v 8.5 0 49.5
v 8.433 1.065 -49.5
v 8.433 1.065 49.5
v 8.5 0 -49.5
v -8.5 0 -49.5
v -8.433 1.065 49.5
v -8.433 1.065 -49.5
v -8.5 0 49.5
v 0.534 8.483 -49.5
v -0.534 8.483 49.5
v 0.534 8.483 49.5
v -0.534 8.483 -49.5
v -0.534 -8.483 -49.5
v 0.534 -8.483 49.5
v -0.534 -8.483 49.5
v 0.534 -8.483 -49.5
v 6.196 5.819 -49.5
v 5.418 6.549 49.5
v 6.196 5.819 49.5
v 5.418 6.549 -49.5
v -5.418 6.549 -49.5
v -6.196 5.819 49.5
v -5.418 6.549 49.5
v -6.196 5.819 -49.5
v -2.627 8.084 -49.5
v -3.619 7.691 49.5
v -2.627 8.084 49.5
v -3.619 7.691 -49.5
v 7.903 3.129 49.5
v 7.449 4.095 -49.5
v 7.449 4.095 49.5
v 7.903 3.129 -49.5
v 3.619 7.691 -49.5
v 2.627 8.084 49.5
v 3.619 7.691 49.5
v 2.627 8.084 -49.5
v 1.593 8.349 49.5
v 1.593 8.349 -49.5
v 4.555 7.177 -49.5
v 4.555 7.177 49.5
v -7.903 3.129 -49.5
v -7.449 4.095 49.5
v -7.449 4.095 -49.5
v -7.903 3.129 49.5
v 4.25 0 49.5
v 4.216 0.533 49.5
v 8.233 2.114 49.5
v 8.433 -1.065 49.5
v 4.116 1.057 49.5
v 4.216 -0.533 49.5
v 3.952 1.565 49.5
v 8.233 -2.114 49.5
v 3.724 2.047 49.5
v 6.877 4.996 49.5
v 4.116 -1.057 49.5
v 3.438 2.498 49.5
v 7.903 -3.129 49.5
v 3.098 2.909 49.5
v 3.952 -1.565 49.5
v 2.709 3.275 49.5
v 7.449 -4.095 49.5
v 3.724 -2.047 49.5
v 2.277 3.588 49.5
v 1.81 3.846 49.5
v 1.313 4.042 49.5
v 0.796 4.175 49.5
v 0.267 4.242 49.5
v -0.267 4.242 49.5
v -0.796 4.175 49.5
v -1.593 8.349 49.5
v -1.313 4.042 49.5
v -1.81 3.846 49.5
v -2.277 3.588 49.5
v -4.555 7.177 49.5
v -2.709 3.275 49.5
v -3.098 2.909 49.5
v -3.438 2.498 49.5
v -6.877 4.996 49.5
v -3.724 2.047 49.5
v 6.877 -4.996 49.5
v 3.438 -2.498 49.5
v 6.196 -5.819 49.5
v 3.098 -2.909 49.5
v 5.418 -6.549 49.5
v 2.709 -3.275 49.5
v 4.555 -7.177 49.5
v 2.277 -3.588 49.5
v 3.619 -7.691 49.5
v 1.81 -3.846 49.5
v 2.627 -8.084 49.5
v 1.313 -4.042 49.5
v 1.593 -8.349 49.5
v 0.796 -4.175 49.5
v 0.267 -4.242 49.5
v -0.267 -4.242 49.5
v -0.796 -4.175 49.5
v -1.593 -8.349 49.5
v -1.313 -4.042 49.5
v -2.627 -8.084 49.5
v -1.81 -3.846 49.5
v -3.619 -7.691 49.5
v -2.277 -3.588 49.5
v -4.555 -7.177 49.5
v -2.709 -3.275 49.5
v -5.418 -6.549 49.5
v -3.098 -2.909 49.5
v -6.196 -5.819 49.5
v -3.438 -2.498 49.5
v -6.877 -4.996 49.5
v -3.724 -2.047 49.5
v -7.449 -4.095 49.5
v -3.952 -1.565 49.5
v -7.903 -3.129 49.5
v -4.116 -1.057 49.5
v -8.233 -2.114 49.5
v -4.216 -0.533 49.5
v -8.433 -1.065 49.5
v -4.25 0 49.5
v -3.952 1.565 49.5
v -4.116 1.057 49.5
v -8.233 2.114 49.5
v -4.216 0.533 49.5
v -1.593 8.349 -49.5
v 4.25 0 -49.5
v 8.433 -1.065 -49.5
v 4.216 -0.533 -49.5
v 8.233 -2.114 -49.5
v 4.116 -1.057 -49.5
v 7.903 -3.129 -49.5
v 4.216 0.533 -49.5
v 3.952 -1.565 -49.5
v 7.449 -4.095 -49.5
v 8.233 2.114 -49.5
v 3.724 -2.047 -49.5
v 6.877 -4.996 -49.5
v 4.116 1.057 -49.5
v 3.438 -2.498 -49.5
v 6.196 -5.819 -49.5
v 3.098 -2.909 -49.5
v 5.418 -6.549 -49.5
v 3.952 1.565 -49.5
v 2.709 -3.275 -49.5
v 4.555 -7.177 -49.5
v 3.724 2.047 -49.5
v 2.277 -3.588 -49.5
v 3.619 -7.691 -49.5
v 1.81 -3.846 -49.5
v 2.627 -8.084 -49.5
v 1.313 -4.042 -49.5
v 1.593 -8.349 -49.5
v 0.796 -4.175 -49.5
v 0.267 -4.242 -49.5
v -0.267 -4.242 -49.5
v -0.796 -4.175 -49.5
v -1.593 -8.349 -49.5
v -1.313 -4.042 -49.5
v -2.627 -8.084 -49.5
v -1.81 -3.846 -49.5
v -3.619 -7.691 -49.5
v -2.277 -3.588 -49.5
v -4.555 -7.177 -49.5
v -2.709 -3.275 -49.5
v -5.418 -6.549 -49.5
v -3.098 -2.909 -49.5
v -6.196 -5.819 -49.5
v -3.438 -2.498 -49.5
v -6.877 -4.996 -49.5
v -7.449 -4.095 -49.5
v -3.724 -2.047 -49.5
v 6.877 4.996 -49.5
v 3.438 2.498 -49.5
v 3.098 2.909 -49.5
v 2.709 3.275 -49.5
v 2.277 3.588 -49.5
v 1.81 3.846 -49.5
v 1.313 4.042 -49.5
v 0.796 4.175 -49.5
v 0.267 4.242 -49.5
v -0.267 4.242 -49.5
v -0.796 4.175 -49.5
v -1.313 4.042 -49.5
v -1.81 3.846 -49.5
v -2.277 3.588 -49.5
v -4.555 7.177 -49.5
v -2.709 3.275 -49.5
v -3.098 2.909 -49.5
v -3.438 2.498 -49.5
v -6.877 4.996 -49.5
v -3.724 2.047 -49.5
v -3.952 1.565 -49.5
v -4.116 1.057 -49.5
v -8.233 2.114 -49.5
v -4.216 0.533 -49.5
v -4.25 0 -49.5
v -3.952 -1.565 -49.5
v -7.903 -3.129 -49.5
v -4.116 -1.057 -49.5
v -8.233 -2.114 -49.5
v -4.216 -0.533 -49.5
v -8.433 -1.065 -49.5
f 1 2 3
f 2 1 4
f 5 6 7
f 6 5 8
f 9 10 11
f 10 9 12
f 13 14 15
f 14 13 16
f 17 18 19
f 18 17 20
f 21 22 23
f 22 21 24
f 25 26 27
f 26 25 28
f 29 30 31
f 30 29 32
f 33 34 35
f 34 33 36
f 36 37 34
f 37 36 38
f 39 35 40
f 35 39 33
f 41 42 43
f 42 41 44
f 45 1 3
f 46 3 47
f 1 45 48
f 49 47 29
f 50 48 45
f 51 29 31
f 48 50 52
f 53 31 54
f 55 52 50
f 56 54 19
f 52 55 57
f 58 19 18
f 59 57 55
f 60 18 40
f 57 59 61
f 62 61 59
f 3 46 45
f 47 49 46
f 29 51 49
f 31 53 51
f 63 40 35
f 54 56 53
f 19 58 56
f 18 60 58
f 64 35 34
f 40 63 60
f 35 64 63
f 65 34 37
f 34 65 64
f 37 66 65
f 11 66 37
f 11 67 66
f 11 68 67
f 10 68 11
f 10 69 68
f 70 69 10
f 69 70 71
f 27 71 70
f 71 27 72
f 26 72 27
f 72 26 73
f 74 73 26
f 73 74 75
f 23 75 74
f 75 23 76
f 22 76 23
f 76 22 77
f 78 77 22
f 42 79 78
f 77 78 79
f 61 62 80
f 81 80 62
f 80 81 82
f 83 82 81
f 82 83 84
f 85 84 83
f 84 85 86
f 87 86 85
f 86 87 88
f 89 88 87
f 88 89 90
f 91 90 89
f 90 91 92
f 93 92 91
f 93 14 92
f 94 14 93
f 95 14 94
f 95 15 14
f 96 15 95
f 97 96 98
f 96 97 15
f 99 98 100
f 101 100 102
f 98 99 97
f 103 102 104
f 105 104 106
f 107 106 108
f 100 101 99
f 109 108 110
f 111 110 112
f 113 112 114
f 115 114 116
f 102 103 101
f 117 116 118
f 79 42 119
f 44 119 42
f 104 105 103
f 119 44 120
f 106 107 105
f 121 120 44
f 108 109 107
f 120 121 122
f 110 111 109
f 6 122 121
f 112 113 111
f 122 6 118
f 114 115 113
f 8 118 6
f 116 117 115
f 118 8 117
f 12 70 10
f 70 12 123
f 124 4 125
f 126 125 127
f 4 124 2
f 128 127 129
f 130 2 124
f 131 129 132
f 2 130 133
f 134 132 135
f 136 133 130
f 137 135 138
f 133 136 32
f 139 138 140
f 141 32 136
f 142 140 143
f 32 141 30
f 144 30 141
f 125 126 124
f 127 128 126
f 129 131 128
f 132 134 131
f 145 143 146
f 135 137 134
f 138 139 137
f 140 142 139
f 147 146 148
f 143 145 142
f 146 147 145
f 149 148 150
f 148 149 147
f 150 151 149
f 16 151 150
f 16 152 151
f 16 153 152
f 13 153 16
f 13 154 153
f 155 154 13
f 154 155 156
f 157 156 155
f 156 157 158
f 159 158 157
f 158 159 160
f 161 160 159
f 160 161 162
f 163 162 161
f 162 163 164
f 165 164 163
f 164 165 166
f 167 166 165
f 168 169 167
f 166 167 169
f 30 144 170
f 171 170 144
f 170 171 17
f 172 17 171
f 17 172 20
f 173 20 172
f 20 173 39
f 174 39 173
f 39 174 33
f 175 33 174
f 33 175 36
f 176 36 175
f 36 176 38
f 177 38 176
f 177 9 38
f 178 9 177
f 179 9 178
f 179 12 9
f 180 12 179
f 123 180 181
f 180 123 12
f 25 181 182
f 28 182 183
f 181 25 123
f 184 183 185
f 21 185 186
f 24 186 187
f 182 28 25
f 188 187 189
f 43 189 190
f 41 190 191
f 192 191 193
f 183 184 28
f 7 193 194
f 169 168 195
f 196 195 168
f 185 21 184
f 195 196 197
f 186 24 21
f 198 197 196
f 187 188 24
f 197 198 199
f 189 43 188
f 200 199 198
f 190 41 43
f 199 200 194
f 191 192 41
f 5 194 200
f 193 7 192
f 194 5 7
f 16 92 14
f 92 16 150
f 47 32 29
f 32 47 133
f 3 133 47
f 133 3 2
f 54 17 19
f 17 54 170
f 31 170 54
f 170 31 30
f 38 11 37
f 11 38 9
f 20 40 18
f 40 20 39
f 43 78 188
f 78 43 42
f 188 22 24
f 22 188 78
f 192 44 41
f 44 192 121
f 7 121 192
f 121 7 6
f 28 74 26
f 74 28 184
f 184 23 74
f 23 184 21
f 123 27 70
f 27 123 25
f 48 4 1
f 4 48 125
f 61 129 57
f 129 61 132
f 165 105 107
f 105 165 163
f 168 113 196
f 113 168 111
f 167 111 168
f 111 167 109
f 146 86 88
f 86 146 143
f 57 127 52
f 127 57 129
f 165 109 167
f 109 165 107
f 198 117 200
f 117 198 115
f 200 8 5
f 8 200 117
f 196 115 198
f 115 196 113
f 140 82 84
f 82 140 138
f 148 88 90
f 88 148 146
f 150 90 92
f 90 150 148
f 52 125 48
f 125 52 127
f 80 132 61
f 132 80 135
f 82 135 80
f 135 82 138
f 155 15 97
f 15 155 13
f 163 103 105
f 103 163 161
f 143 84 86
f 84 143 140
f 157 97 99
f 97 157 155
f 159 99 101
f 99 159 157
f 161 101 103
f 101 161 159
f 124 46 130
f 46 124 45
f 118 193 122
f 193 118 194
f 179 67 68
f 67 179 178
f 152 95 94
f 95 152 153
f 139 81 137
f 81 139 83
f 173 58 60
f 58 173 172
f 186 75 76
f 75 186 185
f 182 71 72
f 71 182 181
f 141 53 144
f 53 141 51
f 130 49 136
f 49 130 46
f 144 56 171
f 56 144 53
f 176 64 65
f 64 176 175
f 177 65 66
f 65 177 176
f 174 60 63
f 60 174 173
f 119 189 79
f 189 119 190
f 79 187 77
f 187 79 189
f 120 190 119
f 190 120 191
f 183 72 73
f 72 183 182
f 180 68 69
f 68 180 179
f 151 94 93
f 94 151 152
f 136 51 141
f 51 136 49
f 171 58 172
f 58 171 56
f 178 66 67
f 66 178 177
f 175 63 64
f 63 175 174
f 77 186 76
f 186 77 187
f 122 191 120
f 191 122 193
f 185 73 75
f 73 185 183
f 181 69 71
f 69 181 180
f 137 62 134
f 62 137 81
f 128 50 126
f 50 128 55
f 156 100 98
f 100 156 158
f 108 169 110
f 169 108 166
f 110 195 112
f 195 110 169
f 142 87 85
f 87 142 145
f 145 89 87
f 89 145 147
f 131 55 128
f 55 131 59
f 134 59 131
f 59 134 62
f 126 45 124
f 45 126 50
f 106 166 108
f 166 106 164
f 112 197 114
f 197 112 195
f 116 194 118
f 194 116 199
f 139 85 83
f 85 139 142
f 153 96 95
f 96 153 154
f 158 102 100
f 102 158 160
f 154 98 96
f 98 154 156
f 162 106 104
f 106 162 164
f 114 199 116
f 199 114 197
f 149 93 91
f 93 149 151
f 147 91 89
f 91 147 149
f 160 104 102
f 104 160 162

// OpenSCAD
$fn = 50;


difference() {
	union() {
		translate(v = [0, 0, -49.5000000000]) {
			cylinder(h = 99, r = 8.5000000000);
		}
	}
	union() {
		translate(v = [0, 0, -100.0000000000]) {
			cylinder(h = 200, r = 4.2500000000);
		}
	}
}
